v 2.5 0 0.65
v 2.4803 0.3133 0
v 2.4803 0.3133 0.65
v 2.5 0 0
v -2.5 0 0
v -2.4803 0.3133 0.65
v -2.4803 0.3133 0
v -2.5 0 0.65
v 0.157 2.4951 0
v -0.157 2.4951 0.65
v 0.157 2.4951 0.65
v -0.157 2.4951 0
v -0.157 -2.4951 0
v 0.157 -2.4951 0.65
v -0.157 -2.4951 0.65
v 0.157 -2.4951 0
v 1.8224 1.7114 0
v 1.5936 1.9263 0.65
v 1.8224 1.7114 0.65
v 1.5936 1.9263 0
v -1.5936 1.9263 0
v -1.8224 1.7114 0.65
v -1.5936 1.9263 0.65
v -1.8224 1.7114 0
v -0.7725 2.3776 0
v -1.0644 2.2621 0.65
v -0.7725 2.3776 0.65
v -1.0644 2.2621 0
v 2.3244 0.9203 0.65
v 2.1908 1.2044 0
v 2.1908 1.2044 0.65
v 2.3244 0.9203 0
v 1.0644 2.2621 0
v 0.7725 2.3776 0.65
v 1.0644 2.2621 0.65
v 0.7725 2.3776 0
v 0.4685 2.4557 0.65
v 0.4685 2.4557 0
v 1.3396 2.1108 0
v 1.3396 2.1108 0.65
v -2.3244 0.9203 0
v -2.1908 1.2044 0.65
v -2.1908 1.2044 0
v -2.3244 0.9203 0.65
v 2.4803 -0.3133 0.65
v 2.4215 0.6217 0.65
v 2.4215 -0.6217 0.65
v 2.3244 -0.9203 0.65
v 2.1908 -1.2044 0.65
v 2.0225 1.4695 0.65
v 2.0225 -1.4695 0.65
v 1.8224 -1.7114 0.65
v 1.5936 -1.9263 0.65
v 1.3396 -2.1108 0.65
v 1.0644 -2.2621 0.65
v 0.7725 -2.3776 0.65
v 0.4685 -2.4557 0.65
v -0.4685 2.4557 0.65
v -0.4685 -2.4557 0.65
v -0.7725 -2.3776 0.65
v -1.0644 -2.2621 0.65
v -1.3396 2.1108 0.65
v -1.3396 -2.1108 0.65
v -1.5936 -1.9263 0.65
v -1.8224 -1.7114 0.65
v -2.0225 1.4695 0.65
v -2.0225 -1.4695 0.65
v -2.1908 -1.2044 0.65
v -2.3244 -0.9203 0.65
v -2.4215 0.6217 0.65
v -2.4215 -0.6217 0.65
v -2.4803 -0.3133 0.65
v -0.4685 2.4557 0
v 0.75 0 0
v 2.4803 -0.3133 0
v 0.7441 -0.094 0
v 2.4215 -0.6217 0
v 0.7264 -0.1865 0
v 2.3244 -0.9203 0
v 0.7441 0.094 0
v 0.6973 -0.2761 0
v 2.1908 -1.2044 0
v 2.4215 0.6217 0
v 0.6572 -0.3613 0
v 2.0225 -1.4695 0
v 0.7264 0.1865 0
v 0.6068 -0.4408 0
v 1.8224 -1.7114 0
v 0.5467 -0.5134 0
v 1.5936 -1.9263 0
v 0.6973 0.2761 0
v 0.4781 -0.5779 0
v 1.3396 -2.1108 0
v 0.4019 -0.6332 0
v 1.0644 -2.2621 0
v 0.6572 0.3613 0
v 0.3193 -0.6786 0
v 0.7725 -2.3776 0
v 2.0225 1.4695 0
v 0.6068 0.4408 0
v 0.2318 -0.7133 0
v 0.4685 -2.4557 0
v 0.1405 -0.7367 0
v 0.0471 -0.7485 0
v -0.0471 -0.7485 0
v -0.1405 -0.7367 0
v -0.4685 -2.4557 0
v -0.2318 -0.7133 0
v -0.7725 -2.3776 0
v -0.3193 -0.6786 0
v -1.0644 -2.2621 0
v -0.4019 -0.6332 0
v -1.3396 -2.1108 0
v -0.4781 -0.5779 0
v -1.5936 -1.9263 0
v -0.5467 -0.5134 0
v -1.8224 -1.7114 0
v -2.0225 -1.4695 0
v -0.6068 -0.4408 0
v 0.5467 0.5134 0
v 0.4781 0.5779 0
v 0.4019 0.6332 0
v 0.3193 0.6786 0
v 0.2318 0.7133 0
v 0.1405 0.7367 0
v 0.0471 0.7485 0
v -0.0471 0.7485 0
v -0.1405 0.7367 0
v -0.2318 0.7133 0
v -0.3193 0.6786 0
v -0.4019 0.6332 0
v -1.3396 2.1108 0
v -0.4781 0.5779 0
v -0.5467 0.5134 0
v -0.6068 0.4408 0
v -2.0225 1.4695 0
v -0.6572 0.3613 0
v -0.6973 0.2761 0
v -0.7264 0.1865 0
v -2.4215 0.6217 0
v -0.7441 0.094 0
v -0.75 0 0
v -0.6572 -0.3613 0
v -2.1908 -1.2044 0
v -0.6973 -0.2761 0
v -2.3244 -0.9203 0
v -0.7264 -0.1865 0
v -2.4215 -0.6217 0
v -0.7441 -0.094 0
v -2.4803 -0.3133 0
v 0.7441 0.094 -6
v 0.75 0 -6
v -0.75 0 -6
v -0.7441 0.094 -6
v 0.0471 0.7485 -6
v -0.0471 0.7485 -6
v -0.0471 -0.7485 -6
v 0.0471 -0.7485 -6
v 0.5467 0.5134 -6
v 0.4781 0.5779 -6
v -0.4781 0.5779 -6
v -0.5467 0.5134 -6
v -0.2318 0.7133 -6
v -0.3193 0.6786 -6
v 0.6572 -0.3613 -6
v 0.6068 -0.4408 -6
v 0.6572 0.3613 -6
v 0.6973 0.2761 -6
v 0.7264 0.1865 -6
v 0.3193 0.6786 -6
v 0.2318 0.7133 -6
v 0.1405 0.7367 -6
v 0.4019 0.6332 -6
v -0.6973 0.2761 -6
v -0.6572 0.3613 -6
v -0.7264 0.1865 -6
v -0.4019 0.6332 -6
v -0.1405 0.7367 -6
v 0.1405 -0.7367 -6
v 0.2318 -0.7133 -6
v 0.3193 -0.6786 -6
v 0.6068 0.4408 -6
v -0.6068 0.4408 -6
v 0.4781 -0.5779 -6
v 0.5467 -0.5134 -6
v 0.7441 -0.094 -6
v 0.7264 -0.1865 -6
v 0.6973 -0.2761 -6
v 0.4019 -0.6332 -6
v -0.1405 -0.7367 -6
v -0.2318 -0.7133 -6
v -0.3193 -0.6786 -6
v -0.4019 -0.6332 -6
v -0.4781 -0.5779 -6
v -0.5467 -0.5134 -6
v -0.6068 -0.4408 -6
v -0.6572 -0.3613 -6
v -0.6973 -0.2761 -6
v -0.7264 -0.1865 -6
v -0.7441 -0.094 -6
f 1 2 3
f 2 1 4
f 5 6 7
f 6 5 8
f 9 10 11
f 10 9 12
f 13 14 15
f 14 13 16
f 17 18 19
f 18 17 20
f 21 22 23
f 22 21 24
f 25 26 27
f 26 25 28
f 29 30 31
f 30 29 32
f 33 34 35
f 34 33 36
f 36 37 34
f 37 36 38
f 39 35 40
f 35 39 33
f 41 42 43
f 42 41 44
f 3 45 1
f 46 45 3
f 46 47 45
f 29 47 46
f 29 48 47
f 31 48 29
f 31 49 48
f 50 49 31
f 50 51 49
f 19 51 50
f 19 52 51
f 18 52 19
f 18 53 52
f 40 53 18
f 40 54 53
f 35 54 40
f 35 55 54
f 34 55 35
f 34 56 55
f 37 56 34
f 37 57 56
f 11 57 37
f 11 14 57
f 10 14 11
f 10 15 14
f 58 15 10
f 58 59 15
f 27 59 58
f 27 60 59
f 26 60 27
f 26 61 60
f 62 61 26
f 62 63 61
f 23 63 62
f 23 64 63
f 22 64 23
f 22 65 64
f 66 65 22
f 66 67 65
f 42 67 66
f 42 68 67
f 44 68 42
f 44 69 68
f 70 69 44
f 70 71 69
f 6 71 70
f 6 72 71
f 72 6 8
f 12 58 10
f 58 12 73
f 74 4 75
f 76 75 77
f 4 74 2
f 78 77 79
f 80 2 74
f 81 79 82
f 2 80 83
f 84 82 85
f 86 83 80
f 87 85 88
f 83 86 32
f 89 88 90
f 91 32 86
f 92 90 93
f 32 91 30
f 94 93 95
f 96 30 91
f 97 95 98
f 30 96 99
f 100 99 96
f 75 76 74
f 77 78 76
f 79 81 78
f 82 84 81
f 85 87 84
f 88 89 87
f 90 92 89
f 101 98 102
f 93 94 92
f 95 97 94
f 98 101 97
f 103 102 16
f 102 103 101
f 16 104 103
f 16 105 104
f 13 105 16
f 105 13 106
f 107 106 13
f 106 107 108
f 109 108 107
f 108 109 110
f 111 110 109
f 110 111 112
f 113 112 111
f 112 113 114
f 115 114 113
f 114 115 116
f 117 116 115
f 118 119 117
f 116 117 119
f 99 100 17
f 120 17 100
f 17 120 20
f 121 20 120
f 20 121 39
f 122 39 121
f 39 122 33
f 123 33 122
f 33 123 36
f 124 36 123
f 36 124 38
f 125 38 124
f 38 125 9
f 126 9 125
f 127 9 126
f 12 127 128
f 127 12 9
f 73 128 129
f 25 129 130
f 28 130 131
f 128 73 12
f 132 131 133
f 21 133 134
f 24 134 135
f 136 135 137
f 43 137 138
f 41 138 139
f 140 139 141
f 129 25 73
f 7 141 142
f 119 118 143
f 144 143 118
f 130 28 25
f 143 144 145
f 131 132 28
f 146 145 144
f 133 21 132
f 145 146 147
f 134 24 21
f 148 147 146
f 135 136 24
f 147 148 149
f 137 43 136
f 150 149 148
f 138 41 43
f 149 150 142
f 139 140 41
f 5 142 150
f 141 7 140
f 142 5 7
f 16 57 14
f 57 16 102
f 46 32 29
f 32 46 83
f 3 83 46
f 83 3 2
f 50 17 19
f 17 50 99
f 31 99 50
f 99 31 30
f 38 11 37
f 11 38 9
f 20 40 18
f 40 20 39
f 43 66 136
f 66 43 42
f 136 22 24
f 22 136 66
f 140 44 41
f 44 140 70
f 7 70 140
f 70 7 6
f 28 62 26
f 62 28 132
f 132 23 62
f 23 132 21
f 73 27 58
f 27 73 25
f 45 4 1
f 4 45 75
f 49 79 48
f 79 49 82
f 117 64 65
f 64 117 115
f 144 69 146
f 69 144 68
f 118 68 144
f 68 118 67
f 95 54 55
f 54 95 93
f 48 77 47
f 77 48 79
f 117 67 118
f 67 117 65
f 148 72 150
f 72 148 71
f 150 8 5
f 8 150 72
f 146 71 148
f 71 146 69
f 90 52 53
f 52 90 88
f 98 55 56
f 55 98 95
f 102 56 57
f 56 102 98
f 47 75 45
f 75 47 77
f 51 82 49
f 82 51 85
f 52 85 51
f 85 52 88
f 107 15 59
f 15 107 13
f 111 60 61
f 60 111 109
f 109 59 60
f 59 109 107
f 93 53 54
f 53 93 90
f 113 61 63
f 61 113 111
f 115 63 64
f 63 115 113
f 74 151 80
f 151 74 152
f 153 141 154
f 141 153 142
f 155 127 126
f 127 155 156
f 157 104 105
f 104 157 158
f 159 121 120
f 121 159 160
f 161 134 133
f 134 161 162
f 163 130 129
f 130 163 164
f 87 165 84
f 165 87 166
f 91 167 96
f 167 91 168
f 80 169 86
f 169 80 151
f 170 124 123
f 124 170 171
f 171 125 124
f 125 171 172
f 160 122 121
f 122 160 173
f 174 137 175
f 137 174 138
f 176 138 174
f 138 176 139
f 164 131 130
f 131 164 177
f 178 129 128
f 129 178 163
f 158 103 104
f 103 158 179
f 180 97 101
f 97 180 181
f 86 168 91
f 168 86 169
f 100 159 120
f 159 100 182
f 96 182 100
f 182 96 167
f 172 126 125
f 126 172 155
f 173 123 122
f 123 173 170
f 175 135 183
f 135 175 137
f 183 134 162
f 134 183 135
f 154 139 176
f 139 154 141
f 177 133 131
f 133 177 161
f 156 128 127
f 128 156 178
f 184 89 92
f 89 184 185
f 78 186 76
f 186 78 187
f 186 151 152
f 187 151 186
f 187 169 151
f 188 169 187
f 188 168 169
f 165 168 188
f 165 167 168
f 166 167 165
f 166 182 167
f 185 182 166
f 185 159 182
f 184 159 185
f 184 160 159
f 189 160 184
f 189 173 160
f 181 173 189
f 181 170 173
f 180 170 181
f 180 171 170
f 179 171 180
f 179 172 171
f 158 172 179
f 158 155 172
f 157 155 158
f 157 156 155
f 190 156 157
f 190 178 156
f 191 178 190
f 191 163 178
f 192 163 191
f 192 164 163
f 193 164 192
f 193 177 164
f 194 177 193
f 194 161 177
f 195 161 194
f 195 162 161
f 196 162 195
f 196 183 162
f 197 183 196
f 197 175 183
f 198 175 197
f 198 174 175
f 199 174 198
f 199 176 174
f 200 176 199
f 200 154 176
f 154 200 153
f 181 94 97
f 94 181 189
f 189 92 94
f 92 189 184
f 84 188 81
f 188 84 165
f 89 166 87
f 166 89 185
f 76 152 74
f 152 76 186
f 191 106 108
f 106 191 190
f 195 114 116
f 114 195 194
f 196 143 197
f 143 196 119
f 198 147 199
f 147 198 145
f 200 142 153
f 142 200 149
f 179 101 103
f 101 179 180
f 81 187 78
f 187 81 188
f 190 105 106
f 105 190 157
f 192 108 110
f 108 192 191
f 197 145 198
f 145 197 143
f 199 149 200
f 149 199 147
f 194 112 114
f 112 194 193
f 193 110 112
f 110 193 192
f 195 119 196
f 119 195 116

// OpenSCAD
$fn = 50;


difference() {
	union() {
		translate(v = [0, 0, 0]) {
			rotate(a = [0, 0, 0]) {
				cylinder(h = 0.6500000000, r = 2.5000000000);
			}
		}
		translate(v = [0, 0, -6]) {
			rotate(a = [0, 0, 0]) {
				cylinder(h = 6, r = 0.7500000000);
			}
		}
	}
	union();
}
